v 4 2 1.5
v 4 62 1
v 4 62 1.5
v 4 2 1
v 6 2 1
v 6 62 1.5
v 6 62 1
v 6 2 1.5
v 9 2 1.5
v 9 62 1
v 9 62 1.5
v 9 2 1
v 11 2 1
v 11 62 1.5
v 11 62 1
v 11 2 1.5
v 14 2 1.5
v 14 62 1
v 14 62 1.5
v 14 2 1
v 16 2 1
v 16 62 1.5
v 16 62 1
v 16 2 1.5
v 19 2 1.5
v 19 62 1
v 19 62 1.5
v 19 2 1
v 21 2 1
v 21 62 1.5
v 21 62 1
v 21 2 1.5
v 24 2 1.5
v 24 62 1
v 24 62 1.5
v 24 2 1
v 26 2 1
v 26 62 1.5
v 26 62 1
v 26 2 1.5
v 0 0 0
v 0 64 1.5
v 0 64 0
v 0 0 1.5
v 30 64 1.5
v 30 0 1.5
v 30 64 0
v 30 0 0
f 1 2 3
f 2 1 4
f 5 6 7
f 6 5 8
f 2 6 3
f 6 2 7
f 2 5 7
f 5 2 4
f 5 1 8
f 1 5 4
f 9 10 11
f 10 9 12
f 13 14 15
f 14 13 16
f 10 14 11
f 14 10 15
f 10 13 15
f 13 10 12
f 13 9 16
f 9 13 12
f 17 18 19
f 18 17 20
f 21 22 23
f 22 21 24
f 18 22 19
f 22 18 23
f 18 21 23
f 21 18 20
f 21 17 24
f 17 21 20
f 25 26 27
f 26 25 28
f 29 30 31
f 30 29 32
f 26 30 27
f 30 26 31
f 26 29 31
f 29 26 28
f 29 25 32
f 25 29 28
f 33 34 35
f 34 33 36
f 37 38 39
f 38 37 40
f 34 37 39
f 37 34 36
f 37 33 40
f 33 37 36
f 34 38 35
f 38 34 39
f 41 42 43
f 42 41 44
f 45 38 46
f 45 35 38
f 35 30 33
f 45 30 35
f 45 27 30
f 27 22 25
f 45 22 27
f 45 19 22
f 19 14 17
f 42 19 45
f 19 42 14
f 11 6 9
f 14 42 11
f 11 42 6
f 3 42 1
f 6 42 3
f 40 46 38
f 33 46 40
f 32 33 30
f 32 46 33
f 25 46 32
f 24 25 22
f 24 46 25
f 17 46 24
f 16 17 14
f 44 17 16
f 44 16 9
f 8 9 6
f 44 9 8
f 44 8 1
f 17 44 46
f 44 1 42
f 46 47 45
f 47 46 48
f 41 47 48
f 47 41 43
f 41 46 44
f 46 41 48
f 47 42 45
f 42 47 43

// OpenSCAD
// Trennwand für Kleinteile Box

l=64;
b=30;
t=1.5;

difference() {
    cube([b,l,t]);
    
    for (i=[0:1:4])
    translate([5*i+4,2,1])
    cube([2,l-4,3]);
}
